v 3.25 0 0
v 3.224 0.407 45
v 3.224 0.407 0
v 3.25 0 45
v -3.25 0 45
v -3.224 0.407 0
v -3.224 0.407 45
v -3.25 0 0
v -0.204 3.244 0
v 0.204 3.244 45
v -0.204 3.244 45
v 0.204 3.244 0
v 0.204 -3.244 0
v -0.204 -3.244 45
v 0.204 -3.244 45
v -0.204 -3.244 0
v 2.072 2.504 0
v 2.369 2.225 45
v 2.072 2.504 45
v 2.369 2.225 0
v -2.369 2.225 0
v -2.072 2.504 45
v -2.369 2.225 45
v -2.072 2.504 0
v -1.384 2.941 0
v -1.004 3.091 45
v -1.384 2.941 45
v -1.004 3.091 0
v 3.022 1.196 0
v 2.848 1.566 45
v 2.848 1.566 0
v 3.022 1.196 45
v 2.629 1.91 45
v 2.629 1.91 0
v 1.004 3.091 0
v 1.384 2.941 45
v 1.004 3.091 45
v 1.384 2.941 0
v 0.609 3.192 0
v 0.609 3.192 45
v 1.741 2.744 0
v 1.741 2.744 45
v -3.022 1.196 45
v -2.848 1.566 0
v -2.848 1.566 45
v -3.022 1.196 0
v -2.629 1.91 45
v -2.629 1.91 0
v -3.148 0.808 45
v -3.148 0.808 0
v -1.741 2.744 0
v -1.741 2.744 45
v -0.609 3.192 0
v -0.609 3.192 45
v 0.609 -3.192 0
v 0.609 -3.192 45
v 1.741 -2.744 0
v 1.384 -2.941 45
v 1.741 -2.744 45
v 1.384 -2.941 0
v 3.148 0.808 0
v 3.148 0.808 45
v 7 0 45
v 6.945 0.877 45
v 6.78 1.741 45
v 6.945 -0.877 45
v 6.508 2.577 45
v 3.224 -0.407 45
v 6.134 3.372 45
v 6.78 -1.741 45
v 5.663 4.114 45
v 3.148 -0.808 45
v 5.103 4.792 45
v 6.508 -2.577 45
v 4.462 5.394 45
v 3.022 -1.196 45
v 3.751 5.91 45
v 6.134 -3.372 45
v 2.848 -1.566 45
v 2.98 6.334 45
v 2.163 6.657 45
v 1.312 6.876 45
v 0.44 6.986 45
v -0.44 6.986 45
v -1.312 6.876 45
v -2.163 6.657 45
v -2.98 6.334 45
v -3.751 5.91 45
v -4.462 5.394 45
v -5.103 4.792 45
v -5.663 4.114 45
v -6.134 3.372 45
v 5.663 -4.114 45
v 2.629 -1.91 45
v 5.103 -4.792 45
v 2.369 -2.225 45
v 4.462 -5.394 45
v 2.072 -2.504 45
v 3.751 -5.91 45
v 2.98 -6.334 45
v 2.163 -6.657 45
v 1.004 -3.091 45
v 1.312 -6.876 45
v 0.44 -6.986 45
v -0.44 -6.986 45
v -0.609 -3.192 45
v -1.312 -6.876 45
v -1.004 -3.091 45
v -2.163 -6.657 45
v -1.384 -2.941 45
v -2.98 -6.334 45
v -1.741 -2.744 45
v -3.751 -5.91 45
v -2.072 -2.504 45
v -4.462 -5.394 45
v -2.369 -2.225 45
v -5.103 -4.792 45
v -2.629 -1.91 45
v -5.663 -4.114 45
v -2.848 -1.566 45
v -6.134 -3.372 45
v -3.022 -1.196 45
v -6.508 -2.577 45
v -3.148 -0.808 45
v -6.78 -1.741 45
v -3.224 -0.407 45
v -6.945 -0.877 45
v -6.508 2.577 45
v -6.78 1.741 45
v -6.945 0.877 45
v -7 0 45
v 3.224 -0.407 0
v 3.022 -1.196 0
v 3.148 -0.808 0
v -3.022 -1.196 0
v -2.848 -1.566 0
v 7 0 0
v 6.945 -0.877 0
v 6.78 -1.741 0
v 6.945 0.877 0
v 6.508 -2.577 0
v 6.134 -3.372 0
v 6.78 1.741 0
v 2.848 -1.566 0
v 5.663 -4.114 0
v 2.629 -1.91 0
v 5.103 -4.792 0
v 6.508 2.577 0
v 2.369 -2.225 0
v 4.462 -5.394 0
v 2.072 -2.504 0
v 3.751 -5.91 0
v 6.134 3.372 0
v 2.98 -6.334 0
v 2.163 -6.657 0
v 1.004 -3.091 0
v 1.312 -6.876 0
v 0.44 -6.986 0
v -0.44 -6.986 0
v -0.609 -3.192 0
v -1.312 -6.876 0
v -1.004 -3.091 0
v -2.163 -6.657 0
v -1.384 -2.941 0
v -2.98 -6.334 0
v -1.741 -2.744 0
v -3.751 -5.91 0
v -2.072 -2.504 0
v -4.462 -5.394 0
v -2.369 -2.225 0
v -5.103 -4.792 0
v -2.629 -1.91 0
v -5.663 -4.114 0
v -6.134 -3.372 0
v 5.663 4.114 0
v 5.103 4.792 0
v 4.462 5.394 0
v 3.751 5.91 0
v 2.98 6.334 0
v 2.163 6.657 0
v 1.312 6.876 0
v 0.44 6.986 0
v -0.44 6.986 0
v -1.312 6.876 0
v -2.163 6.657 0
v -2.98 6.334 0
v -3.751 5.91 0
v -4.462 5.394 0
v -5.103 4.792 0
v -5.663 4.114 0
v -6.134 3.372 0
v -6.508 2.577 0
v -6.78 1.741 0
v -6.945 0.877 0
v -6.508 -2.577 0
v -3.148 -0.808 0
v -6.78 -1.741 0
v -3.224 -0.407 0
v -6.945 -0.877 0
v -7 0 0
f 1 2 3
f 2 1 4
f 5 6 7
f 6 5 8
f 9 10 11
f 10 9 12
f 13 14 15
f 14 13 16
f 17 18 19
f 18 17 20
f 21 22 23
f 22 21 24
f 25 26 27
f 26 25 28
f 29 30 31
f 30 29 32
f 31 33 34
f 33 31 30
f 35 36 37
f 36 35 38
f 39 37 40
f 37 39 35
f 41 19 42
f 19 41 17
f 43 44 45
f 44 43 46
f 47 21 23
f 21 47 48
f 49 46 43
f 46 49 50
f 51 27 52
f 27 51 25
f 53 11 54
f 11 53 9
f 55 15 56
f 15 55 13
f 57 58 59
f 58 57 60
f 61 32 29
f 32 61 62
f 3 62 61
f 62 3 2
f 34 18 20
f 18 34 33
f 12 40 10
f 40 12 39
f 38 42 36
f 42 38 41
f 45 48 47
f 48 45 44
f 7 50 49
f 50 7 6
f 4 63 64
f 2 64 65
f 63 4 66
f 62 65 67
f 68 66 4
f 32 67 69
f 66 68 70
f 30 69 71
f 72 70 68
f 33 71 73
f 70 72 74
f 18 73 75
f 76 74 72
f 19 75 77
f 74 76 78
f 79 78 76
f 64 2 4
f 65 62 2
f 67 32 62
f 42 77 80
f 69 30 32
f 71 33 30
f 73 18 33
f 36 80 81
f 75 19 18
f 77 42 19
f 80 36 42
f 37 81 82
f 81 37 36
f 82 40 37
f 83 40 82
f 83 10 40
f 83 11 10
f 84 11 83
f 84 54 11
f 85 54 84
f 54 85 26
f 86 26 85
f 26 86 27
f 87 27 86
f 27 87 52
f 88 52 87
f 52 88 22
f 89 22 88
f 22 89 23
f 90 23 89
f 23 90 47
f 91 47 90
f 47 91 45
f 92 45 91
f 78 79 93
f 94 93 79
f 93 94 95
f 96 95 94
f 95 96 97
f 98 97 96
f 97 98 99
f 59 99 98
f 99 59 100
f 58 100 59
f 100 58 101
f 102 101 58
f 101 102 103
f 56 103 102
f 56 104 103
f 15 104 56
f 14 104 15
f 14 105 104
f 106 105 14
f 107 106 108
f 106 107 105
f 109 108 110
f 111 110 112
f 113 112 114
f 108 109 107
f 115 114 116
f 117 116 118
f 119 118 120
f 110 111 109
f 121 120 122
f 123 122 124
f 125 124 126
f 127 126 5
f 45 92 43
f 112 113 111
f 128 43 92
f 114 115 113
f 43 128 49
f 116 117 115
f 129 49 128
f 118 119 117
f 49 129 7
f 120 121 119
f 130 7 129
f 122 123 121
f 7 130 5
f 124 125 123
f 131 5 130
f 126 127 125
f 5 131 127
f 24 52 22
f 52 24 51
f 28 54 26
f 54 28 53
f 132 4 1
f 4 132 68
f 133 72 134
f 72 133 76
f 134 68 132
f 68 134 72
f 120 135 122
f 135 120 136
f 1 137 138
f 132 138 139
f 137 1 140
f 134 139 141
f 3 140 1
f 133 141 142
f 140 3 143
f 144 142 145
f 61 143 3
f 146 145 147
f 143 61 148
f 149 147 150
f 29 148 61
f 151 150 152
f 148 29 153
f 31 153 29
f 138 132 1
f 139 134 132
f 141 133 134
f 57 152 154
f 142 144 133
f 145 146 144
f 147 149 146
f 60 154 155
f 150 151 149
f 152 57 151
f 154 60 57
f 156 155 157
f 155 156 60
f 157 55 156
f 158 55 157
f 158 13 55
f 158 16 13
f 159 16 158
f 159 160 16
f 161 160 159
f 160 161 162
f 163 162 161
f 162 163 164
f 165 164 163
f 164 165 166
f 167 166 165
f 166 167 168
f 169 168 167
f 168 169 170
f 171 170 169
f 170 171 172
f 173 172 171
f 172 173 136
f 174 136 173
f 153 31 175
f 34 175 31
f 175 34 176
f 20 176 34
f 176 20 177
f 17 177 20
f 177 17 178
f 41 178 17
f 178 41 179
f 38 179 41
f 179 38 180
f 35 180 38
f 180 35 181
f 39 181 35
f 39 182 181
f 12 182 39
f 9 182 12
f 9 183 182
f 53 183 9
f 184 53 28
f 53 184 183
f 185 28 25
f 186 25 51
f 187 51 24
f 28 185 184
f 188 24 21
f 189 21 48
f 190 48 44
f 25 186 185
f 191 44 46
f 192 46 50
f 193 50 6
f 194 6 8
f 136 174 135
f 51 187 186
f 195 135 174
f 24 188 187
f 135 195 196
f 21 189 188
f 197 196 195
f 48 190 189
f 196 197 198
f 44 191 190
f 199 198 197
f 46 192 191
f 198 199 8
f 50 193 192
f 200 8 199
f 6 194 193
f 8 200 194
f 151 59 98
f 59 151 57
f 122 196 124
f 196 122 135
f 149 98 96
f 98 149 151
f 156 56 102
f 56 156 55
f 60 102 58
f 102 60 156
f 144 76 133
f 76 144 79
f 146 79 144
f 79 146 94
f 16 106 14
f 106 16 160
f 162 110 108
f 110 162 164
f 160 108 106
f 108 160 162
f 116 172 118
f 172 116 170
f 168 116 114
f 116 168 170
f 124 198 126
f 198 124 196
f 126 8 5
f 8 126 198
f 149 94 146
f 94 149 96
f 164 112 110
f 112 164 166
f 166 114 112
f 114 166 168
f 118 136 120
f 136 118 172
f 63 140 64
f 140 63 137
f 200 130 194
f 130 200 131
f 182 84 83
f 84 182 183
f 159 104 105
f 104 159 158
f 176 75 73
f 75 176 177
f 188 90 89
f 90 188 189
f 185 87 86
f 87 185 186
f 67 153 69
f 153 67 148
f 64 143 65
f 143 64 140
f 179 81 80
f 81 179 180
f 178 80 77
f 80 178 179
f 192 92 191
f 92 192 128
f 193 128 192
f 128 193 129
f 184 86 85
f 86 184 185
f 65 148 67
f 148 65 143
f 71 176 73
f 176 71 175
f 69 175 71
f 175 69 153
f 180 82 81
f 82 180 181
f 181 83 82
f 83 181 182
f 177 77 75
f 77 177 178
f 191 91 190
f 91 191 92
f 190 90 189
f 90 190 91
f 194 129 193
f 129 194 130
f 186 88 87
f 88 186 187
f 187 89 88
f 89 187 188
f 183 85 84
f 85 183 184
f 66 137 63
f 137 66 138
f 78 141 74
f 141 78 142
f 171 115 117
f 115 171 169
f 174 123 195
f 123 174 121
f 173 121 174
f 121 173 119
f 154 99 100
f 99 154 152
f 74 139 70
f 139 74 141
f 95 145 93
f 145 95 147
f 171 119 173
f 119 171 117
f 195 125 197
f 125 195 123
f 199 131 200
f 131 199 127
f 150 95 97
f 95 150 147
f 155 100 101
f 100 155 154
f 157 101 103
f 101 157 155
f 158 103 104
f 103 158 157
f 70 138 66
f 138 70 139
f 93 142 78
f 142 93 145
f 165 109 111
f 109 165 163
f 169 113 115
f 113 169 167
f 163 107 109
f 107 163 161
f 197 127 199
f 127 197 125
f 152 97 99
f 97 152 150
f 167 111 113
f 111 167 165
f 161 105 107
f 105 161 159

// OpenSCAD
$fn = 50;


difference() {
	union() {
		cylinder(h = 45, r = 7.0000000000);
	}
	union() {
		translate(v = [0, 0, -100]) {
			cylinder(h = 200, r = 3.2500000000);
		}
		translate(v = [0, 0, -100]) {
			cylinder(h = 200, r = 1.8000000000);
		}
	}
}
